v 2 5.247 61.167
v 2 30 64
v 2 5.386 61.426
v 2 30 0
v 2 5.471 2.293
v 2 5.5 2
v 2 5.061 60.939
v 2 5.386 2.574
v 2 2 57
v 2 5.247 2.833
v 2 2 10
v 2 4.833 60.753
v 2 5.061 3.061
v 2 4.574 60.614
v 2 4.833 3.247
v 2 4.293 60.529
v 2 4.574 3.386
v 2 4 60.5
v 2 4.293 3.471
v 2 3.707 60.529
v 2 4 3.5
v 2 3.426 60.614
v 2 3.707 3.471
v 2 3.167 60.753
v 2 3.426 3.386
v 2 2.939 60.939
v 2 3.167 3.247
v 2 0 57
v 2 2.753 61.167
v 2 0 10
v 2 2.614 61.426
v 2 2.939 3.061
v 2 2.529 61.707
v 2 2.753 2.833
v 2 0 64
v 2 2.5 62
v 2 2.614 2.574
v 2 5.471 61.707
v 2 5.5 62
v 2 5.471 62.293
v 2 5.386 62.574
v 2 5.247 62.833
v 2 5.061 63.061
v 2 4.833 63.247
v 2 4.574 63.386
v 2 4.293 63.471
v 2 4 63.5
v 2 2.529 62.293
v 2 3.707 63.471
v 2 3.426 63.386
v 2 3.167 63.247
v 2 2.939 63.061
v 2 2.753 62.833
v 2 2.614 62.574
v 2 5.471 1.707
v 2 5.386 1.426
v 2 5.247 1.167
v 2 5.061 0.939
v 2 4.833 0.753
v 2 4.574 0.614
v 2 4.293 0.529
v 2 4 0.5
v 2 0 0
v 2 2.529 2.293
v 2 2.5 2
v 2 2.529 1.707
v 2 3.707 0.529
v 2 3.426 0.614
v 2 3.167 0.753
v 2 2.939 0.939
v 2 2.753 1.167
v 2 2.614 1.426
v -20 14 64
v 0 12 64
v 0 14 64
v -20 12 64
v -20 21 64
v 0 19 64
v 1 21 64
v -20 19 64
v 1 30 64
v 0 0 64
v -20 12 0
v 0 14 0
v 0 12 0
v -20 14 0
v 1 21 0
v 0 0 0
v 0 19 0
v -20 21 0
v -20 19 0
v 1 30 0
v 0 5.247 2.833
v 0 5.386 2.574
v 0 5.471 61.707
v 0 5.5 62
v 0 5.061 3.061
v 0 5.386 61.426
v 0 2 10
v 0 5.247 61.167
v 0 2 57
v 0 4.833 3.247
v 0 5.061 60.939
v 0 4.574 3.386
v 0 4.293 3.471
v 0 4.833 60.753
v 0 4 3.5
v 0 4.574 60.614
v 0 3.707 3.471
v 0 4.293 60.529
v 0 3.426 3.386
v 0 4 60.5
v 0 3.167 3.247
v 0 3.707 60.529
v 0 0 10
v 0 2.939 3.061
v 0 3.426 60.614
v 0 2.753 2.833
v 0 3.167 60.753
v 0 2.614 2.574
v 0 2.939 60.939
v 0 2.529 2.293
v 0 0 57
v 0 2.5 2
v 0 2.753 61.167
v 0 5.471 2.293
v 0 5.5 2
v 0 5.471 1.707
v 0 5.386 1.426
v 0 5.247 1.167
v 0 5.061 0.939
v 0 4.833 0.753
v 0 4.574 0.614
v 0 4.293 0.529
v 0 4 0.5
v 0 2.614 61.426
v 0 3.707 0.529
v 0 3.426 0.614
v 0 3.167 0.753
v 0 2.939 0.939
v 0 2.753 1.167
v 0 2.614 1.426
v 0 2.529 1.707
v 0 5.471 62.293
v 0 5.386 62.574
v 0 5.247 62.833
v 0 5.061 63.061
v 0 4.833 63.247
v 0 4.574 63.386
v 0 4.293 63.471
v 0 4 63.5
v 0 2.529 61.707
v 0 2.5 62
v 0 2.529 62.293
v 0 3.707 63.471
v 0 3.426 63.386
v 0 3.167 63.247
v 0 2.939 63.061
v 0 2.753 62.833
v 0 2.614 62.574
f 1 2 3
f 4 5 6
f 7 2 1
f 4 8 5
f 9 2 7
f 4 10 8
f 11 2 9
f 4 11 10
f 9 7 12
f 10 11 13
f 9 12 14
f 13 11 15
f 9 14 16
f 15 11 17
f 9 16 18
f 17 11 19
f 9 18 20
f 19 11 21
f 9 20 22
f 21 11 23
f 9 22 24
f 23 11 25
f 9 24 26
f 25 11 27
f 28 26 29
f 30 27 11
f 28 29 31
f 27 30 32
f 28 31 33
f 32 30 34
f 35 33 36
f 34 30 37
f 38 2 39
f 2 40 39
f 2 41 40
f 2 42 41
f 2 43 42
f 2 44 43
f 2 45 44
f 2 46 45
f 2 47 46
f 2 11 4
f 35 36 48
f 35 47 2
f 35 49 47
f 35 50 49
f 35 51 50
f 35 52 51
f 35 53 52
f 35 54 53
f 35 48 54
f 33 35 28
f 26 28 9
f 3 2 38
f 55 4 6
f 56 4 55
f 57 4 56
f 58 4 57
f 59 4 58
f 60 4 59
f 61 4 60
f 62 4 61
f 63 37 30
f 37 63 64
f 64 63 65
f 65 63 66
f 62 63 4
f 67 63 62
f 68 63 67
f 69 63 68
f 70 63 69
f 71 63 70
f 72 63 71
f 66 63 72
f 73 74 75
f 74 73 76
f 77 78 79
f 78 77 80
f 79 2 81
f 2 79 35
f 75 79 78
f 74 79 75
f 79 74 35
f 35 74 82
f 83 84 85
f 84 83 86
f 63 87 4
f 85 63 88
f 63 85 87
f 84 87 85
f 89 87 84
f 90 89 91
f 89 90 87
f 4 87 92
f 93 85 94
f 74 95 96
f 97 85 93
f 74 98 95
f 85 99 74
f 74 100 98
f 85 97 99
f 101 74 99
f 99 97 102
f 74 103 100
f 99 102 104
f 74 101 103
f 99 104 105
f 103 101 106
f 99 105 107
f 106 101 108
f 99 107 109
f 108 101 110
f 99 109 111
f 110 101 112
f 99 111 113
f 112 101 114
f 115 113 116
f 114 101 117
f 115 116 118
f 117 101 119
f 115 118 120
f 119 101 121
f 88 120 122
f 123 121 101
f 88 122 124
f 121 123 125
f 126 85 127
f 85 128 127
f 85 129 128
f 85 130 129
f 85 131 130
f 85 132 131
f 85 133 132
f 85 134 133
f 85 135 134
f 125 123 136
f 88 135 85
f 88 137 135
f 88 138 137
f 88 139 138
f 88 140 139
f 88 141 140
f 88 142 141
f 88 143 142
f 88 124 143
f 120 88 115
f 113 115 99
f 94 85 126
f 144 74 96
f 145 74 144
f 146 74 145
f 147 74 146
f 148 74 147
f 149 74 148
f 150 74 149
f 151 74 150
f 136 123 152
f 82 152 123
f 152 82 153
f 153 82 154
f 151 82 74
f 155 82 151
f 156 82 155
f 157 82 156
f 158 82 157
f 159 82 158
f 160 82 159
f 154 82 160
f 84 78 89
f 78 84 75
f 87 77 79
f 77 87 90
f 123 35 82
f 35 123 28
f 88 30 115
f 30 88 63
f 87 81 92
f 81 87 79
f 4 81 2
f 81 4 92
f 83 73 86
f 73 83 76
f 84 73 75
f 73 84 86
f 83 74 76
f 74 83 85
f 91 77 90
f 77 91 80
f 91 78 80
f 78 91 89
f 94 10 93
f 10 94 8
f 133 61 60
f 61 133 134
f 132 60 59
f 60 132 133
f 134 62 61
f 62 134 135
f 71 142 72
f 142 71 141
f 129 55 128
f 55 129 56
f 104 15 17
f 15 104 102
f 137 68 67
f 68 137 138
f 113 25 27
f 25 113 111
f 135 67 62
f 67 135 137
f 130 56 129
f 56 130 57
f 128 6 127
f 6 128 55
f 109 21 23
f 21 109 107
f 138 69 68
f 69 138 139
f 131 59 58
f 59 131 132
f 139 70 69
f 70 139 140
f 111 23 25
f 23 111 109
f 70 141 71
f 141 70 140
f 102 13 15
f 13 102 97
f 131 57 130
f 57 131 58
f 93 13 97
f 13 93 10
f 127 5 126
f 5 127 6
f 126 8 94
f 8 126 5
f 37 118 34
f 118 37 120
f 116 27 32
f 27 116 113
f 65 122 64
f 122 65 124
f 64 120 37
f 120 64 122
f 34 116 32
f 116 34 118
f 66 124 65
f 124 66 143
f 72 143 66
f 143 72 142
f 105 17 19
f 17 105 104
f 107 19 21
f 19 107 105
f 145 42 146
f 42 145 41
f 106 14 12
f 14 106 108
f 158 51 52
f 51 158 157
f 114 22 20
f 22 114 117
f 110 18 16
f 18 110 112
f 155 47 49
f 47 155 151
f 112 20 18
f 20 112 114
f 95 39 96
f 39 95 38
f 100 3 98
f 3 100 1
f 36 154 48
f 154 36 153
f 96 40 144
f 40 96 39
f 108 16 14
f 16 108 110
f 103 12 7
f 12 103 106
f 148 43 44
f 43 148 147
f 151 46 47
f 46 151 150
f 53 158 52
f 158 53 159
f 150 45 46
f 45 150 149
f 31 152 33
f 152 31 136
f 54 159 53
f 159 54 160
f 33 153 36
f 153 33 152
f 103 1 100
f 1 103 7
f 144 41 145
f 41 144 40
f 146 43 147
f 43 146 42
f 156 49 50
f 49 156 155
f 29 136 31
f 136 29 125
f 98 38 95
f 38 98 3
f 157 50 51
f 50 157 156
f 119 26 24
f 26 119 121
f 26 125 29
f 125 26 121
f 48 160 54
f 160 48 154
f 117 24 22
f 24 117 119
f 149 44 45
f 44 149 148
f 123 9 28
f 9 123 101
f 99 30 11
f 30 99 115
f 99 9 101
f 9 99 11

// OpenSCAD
// Higher definition curves
$fa = 8;
$fs = 0.3;

difference() {
    union() {
        cube([2, 21, 64]);
        translate([1, 0, 0]) cube([1, 30, 64]);
        translate([-20, 12, 0]) cube([20, 2, 64]);
        translate([-20, 12+5+2, 0]) cube([20, 2, 64]);
    }
    
    translate([0, 4, 2]) union() {
        rotate([0, 90, 0]) cylinder(3, d=3);
        translate([0, 0, 60]) rotate([0, 90, 0]) cylinder(3, d=3);
        translate([0, -4, 8]) cube([2, 2, 47]);
    }
}
